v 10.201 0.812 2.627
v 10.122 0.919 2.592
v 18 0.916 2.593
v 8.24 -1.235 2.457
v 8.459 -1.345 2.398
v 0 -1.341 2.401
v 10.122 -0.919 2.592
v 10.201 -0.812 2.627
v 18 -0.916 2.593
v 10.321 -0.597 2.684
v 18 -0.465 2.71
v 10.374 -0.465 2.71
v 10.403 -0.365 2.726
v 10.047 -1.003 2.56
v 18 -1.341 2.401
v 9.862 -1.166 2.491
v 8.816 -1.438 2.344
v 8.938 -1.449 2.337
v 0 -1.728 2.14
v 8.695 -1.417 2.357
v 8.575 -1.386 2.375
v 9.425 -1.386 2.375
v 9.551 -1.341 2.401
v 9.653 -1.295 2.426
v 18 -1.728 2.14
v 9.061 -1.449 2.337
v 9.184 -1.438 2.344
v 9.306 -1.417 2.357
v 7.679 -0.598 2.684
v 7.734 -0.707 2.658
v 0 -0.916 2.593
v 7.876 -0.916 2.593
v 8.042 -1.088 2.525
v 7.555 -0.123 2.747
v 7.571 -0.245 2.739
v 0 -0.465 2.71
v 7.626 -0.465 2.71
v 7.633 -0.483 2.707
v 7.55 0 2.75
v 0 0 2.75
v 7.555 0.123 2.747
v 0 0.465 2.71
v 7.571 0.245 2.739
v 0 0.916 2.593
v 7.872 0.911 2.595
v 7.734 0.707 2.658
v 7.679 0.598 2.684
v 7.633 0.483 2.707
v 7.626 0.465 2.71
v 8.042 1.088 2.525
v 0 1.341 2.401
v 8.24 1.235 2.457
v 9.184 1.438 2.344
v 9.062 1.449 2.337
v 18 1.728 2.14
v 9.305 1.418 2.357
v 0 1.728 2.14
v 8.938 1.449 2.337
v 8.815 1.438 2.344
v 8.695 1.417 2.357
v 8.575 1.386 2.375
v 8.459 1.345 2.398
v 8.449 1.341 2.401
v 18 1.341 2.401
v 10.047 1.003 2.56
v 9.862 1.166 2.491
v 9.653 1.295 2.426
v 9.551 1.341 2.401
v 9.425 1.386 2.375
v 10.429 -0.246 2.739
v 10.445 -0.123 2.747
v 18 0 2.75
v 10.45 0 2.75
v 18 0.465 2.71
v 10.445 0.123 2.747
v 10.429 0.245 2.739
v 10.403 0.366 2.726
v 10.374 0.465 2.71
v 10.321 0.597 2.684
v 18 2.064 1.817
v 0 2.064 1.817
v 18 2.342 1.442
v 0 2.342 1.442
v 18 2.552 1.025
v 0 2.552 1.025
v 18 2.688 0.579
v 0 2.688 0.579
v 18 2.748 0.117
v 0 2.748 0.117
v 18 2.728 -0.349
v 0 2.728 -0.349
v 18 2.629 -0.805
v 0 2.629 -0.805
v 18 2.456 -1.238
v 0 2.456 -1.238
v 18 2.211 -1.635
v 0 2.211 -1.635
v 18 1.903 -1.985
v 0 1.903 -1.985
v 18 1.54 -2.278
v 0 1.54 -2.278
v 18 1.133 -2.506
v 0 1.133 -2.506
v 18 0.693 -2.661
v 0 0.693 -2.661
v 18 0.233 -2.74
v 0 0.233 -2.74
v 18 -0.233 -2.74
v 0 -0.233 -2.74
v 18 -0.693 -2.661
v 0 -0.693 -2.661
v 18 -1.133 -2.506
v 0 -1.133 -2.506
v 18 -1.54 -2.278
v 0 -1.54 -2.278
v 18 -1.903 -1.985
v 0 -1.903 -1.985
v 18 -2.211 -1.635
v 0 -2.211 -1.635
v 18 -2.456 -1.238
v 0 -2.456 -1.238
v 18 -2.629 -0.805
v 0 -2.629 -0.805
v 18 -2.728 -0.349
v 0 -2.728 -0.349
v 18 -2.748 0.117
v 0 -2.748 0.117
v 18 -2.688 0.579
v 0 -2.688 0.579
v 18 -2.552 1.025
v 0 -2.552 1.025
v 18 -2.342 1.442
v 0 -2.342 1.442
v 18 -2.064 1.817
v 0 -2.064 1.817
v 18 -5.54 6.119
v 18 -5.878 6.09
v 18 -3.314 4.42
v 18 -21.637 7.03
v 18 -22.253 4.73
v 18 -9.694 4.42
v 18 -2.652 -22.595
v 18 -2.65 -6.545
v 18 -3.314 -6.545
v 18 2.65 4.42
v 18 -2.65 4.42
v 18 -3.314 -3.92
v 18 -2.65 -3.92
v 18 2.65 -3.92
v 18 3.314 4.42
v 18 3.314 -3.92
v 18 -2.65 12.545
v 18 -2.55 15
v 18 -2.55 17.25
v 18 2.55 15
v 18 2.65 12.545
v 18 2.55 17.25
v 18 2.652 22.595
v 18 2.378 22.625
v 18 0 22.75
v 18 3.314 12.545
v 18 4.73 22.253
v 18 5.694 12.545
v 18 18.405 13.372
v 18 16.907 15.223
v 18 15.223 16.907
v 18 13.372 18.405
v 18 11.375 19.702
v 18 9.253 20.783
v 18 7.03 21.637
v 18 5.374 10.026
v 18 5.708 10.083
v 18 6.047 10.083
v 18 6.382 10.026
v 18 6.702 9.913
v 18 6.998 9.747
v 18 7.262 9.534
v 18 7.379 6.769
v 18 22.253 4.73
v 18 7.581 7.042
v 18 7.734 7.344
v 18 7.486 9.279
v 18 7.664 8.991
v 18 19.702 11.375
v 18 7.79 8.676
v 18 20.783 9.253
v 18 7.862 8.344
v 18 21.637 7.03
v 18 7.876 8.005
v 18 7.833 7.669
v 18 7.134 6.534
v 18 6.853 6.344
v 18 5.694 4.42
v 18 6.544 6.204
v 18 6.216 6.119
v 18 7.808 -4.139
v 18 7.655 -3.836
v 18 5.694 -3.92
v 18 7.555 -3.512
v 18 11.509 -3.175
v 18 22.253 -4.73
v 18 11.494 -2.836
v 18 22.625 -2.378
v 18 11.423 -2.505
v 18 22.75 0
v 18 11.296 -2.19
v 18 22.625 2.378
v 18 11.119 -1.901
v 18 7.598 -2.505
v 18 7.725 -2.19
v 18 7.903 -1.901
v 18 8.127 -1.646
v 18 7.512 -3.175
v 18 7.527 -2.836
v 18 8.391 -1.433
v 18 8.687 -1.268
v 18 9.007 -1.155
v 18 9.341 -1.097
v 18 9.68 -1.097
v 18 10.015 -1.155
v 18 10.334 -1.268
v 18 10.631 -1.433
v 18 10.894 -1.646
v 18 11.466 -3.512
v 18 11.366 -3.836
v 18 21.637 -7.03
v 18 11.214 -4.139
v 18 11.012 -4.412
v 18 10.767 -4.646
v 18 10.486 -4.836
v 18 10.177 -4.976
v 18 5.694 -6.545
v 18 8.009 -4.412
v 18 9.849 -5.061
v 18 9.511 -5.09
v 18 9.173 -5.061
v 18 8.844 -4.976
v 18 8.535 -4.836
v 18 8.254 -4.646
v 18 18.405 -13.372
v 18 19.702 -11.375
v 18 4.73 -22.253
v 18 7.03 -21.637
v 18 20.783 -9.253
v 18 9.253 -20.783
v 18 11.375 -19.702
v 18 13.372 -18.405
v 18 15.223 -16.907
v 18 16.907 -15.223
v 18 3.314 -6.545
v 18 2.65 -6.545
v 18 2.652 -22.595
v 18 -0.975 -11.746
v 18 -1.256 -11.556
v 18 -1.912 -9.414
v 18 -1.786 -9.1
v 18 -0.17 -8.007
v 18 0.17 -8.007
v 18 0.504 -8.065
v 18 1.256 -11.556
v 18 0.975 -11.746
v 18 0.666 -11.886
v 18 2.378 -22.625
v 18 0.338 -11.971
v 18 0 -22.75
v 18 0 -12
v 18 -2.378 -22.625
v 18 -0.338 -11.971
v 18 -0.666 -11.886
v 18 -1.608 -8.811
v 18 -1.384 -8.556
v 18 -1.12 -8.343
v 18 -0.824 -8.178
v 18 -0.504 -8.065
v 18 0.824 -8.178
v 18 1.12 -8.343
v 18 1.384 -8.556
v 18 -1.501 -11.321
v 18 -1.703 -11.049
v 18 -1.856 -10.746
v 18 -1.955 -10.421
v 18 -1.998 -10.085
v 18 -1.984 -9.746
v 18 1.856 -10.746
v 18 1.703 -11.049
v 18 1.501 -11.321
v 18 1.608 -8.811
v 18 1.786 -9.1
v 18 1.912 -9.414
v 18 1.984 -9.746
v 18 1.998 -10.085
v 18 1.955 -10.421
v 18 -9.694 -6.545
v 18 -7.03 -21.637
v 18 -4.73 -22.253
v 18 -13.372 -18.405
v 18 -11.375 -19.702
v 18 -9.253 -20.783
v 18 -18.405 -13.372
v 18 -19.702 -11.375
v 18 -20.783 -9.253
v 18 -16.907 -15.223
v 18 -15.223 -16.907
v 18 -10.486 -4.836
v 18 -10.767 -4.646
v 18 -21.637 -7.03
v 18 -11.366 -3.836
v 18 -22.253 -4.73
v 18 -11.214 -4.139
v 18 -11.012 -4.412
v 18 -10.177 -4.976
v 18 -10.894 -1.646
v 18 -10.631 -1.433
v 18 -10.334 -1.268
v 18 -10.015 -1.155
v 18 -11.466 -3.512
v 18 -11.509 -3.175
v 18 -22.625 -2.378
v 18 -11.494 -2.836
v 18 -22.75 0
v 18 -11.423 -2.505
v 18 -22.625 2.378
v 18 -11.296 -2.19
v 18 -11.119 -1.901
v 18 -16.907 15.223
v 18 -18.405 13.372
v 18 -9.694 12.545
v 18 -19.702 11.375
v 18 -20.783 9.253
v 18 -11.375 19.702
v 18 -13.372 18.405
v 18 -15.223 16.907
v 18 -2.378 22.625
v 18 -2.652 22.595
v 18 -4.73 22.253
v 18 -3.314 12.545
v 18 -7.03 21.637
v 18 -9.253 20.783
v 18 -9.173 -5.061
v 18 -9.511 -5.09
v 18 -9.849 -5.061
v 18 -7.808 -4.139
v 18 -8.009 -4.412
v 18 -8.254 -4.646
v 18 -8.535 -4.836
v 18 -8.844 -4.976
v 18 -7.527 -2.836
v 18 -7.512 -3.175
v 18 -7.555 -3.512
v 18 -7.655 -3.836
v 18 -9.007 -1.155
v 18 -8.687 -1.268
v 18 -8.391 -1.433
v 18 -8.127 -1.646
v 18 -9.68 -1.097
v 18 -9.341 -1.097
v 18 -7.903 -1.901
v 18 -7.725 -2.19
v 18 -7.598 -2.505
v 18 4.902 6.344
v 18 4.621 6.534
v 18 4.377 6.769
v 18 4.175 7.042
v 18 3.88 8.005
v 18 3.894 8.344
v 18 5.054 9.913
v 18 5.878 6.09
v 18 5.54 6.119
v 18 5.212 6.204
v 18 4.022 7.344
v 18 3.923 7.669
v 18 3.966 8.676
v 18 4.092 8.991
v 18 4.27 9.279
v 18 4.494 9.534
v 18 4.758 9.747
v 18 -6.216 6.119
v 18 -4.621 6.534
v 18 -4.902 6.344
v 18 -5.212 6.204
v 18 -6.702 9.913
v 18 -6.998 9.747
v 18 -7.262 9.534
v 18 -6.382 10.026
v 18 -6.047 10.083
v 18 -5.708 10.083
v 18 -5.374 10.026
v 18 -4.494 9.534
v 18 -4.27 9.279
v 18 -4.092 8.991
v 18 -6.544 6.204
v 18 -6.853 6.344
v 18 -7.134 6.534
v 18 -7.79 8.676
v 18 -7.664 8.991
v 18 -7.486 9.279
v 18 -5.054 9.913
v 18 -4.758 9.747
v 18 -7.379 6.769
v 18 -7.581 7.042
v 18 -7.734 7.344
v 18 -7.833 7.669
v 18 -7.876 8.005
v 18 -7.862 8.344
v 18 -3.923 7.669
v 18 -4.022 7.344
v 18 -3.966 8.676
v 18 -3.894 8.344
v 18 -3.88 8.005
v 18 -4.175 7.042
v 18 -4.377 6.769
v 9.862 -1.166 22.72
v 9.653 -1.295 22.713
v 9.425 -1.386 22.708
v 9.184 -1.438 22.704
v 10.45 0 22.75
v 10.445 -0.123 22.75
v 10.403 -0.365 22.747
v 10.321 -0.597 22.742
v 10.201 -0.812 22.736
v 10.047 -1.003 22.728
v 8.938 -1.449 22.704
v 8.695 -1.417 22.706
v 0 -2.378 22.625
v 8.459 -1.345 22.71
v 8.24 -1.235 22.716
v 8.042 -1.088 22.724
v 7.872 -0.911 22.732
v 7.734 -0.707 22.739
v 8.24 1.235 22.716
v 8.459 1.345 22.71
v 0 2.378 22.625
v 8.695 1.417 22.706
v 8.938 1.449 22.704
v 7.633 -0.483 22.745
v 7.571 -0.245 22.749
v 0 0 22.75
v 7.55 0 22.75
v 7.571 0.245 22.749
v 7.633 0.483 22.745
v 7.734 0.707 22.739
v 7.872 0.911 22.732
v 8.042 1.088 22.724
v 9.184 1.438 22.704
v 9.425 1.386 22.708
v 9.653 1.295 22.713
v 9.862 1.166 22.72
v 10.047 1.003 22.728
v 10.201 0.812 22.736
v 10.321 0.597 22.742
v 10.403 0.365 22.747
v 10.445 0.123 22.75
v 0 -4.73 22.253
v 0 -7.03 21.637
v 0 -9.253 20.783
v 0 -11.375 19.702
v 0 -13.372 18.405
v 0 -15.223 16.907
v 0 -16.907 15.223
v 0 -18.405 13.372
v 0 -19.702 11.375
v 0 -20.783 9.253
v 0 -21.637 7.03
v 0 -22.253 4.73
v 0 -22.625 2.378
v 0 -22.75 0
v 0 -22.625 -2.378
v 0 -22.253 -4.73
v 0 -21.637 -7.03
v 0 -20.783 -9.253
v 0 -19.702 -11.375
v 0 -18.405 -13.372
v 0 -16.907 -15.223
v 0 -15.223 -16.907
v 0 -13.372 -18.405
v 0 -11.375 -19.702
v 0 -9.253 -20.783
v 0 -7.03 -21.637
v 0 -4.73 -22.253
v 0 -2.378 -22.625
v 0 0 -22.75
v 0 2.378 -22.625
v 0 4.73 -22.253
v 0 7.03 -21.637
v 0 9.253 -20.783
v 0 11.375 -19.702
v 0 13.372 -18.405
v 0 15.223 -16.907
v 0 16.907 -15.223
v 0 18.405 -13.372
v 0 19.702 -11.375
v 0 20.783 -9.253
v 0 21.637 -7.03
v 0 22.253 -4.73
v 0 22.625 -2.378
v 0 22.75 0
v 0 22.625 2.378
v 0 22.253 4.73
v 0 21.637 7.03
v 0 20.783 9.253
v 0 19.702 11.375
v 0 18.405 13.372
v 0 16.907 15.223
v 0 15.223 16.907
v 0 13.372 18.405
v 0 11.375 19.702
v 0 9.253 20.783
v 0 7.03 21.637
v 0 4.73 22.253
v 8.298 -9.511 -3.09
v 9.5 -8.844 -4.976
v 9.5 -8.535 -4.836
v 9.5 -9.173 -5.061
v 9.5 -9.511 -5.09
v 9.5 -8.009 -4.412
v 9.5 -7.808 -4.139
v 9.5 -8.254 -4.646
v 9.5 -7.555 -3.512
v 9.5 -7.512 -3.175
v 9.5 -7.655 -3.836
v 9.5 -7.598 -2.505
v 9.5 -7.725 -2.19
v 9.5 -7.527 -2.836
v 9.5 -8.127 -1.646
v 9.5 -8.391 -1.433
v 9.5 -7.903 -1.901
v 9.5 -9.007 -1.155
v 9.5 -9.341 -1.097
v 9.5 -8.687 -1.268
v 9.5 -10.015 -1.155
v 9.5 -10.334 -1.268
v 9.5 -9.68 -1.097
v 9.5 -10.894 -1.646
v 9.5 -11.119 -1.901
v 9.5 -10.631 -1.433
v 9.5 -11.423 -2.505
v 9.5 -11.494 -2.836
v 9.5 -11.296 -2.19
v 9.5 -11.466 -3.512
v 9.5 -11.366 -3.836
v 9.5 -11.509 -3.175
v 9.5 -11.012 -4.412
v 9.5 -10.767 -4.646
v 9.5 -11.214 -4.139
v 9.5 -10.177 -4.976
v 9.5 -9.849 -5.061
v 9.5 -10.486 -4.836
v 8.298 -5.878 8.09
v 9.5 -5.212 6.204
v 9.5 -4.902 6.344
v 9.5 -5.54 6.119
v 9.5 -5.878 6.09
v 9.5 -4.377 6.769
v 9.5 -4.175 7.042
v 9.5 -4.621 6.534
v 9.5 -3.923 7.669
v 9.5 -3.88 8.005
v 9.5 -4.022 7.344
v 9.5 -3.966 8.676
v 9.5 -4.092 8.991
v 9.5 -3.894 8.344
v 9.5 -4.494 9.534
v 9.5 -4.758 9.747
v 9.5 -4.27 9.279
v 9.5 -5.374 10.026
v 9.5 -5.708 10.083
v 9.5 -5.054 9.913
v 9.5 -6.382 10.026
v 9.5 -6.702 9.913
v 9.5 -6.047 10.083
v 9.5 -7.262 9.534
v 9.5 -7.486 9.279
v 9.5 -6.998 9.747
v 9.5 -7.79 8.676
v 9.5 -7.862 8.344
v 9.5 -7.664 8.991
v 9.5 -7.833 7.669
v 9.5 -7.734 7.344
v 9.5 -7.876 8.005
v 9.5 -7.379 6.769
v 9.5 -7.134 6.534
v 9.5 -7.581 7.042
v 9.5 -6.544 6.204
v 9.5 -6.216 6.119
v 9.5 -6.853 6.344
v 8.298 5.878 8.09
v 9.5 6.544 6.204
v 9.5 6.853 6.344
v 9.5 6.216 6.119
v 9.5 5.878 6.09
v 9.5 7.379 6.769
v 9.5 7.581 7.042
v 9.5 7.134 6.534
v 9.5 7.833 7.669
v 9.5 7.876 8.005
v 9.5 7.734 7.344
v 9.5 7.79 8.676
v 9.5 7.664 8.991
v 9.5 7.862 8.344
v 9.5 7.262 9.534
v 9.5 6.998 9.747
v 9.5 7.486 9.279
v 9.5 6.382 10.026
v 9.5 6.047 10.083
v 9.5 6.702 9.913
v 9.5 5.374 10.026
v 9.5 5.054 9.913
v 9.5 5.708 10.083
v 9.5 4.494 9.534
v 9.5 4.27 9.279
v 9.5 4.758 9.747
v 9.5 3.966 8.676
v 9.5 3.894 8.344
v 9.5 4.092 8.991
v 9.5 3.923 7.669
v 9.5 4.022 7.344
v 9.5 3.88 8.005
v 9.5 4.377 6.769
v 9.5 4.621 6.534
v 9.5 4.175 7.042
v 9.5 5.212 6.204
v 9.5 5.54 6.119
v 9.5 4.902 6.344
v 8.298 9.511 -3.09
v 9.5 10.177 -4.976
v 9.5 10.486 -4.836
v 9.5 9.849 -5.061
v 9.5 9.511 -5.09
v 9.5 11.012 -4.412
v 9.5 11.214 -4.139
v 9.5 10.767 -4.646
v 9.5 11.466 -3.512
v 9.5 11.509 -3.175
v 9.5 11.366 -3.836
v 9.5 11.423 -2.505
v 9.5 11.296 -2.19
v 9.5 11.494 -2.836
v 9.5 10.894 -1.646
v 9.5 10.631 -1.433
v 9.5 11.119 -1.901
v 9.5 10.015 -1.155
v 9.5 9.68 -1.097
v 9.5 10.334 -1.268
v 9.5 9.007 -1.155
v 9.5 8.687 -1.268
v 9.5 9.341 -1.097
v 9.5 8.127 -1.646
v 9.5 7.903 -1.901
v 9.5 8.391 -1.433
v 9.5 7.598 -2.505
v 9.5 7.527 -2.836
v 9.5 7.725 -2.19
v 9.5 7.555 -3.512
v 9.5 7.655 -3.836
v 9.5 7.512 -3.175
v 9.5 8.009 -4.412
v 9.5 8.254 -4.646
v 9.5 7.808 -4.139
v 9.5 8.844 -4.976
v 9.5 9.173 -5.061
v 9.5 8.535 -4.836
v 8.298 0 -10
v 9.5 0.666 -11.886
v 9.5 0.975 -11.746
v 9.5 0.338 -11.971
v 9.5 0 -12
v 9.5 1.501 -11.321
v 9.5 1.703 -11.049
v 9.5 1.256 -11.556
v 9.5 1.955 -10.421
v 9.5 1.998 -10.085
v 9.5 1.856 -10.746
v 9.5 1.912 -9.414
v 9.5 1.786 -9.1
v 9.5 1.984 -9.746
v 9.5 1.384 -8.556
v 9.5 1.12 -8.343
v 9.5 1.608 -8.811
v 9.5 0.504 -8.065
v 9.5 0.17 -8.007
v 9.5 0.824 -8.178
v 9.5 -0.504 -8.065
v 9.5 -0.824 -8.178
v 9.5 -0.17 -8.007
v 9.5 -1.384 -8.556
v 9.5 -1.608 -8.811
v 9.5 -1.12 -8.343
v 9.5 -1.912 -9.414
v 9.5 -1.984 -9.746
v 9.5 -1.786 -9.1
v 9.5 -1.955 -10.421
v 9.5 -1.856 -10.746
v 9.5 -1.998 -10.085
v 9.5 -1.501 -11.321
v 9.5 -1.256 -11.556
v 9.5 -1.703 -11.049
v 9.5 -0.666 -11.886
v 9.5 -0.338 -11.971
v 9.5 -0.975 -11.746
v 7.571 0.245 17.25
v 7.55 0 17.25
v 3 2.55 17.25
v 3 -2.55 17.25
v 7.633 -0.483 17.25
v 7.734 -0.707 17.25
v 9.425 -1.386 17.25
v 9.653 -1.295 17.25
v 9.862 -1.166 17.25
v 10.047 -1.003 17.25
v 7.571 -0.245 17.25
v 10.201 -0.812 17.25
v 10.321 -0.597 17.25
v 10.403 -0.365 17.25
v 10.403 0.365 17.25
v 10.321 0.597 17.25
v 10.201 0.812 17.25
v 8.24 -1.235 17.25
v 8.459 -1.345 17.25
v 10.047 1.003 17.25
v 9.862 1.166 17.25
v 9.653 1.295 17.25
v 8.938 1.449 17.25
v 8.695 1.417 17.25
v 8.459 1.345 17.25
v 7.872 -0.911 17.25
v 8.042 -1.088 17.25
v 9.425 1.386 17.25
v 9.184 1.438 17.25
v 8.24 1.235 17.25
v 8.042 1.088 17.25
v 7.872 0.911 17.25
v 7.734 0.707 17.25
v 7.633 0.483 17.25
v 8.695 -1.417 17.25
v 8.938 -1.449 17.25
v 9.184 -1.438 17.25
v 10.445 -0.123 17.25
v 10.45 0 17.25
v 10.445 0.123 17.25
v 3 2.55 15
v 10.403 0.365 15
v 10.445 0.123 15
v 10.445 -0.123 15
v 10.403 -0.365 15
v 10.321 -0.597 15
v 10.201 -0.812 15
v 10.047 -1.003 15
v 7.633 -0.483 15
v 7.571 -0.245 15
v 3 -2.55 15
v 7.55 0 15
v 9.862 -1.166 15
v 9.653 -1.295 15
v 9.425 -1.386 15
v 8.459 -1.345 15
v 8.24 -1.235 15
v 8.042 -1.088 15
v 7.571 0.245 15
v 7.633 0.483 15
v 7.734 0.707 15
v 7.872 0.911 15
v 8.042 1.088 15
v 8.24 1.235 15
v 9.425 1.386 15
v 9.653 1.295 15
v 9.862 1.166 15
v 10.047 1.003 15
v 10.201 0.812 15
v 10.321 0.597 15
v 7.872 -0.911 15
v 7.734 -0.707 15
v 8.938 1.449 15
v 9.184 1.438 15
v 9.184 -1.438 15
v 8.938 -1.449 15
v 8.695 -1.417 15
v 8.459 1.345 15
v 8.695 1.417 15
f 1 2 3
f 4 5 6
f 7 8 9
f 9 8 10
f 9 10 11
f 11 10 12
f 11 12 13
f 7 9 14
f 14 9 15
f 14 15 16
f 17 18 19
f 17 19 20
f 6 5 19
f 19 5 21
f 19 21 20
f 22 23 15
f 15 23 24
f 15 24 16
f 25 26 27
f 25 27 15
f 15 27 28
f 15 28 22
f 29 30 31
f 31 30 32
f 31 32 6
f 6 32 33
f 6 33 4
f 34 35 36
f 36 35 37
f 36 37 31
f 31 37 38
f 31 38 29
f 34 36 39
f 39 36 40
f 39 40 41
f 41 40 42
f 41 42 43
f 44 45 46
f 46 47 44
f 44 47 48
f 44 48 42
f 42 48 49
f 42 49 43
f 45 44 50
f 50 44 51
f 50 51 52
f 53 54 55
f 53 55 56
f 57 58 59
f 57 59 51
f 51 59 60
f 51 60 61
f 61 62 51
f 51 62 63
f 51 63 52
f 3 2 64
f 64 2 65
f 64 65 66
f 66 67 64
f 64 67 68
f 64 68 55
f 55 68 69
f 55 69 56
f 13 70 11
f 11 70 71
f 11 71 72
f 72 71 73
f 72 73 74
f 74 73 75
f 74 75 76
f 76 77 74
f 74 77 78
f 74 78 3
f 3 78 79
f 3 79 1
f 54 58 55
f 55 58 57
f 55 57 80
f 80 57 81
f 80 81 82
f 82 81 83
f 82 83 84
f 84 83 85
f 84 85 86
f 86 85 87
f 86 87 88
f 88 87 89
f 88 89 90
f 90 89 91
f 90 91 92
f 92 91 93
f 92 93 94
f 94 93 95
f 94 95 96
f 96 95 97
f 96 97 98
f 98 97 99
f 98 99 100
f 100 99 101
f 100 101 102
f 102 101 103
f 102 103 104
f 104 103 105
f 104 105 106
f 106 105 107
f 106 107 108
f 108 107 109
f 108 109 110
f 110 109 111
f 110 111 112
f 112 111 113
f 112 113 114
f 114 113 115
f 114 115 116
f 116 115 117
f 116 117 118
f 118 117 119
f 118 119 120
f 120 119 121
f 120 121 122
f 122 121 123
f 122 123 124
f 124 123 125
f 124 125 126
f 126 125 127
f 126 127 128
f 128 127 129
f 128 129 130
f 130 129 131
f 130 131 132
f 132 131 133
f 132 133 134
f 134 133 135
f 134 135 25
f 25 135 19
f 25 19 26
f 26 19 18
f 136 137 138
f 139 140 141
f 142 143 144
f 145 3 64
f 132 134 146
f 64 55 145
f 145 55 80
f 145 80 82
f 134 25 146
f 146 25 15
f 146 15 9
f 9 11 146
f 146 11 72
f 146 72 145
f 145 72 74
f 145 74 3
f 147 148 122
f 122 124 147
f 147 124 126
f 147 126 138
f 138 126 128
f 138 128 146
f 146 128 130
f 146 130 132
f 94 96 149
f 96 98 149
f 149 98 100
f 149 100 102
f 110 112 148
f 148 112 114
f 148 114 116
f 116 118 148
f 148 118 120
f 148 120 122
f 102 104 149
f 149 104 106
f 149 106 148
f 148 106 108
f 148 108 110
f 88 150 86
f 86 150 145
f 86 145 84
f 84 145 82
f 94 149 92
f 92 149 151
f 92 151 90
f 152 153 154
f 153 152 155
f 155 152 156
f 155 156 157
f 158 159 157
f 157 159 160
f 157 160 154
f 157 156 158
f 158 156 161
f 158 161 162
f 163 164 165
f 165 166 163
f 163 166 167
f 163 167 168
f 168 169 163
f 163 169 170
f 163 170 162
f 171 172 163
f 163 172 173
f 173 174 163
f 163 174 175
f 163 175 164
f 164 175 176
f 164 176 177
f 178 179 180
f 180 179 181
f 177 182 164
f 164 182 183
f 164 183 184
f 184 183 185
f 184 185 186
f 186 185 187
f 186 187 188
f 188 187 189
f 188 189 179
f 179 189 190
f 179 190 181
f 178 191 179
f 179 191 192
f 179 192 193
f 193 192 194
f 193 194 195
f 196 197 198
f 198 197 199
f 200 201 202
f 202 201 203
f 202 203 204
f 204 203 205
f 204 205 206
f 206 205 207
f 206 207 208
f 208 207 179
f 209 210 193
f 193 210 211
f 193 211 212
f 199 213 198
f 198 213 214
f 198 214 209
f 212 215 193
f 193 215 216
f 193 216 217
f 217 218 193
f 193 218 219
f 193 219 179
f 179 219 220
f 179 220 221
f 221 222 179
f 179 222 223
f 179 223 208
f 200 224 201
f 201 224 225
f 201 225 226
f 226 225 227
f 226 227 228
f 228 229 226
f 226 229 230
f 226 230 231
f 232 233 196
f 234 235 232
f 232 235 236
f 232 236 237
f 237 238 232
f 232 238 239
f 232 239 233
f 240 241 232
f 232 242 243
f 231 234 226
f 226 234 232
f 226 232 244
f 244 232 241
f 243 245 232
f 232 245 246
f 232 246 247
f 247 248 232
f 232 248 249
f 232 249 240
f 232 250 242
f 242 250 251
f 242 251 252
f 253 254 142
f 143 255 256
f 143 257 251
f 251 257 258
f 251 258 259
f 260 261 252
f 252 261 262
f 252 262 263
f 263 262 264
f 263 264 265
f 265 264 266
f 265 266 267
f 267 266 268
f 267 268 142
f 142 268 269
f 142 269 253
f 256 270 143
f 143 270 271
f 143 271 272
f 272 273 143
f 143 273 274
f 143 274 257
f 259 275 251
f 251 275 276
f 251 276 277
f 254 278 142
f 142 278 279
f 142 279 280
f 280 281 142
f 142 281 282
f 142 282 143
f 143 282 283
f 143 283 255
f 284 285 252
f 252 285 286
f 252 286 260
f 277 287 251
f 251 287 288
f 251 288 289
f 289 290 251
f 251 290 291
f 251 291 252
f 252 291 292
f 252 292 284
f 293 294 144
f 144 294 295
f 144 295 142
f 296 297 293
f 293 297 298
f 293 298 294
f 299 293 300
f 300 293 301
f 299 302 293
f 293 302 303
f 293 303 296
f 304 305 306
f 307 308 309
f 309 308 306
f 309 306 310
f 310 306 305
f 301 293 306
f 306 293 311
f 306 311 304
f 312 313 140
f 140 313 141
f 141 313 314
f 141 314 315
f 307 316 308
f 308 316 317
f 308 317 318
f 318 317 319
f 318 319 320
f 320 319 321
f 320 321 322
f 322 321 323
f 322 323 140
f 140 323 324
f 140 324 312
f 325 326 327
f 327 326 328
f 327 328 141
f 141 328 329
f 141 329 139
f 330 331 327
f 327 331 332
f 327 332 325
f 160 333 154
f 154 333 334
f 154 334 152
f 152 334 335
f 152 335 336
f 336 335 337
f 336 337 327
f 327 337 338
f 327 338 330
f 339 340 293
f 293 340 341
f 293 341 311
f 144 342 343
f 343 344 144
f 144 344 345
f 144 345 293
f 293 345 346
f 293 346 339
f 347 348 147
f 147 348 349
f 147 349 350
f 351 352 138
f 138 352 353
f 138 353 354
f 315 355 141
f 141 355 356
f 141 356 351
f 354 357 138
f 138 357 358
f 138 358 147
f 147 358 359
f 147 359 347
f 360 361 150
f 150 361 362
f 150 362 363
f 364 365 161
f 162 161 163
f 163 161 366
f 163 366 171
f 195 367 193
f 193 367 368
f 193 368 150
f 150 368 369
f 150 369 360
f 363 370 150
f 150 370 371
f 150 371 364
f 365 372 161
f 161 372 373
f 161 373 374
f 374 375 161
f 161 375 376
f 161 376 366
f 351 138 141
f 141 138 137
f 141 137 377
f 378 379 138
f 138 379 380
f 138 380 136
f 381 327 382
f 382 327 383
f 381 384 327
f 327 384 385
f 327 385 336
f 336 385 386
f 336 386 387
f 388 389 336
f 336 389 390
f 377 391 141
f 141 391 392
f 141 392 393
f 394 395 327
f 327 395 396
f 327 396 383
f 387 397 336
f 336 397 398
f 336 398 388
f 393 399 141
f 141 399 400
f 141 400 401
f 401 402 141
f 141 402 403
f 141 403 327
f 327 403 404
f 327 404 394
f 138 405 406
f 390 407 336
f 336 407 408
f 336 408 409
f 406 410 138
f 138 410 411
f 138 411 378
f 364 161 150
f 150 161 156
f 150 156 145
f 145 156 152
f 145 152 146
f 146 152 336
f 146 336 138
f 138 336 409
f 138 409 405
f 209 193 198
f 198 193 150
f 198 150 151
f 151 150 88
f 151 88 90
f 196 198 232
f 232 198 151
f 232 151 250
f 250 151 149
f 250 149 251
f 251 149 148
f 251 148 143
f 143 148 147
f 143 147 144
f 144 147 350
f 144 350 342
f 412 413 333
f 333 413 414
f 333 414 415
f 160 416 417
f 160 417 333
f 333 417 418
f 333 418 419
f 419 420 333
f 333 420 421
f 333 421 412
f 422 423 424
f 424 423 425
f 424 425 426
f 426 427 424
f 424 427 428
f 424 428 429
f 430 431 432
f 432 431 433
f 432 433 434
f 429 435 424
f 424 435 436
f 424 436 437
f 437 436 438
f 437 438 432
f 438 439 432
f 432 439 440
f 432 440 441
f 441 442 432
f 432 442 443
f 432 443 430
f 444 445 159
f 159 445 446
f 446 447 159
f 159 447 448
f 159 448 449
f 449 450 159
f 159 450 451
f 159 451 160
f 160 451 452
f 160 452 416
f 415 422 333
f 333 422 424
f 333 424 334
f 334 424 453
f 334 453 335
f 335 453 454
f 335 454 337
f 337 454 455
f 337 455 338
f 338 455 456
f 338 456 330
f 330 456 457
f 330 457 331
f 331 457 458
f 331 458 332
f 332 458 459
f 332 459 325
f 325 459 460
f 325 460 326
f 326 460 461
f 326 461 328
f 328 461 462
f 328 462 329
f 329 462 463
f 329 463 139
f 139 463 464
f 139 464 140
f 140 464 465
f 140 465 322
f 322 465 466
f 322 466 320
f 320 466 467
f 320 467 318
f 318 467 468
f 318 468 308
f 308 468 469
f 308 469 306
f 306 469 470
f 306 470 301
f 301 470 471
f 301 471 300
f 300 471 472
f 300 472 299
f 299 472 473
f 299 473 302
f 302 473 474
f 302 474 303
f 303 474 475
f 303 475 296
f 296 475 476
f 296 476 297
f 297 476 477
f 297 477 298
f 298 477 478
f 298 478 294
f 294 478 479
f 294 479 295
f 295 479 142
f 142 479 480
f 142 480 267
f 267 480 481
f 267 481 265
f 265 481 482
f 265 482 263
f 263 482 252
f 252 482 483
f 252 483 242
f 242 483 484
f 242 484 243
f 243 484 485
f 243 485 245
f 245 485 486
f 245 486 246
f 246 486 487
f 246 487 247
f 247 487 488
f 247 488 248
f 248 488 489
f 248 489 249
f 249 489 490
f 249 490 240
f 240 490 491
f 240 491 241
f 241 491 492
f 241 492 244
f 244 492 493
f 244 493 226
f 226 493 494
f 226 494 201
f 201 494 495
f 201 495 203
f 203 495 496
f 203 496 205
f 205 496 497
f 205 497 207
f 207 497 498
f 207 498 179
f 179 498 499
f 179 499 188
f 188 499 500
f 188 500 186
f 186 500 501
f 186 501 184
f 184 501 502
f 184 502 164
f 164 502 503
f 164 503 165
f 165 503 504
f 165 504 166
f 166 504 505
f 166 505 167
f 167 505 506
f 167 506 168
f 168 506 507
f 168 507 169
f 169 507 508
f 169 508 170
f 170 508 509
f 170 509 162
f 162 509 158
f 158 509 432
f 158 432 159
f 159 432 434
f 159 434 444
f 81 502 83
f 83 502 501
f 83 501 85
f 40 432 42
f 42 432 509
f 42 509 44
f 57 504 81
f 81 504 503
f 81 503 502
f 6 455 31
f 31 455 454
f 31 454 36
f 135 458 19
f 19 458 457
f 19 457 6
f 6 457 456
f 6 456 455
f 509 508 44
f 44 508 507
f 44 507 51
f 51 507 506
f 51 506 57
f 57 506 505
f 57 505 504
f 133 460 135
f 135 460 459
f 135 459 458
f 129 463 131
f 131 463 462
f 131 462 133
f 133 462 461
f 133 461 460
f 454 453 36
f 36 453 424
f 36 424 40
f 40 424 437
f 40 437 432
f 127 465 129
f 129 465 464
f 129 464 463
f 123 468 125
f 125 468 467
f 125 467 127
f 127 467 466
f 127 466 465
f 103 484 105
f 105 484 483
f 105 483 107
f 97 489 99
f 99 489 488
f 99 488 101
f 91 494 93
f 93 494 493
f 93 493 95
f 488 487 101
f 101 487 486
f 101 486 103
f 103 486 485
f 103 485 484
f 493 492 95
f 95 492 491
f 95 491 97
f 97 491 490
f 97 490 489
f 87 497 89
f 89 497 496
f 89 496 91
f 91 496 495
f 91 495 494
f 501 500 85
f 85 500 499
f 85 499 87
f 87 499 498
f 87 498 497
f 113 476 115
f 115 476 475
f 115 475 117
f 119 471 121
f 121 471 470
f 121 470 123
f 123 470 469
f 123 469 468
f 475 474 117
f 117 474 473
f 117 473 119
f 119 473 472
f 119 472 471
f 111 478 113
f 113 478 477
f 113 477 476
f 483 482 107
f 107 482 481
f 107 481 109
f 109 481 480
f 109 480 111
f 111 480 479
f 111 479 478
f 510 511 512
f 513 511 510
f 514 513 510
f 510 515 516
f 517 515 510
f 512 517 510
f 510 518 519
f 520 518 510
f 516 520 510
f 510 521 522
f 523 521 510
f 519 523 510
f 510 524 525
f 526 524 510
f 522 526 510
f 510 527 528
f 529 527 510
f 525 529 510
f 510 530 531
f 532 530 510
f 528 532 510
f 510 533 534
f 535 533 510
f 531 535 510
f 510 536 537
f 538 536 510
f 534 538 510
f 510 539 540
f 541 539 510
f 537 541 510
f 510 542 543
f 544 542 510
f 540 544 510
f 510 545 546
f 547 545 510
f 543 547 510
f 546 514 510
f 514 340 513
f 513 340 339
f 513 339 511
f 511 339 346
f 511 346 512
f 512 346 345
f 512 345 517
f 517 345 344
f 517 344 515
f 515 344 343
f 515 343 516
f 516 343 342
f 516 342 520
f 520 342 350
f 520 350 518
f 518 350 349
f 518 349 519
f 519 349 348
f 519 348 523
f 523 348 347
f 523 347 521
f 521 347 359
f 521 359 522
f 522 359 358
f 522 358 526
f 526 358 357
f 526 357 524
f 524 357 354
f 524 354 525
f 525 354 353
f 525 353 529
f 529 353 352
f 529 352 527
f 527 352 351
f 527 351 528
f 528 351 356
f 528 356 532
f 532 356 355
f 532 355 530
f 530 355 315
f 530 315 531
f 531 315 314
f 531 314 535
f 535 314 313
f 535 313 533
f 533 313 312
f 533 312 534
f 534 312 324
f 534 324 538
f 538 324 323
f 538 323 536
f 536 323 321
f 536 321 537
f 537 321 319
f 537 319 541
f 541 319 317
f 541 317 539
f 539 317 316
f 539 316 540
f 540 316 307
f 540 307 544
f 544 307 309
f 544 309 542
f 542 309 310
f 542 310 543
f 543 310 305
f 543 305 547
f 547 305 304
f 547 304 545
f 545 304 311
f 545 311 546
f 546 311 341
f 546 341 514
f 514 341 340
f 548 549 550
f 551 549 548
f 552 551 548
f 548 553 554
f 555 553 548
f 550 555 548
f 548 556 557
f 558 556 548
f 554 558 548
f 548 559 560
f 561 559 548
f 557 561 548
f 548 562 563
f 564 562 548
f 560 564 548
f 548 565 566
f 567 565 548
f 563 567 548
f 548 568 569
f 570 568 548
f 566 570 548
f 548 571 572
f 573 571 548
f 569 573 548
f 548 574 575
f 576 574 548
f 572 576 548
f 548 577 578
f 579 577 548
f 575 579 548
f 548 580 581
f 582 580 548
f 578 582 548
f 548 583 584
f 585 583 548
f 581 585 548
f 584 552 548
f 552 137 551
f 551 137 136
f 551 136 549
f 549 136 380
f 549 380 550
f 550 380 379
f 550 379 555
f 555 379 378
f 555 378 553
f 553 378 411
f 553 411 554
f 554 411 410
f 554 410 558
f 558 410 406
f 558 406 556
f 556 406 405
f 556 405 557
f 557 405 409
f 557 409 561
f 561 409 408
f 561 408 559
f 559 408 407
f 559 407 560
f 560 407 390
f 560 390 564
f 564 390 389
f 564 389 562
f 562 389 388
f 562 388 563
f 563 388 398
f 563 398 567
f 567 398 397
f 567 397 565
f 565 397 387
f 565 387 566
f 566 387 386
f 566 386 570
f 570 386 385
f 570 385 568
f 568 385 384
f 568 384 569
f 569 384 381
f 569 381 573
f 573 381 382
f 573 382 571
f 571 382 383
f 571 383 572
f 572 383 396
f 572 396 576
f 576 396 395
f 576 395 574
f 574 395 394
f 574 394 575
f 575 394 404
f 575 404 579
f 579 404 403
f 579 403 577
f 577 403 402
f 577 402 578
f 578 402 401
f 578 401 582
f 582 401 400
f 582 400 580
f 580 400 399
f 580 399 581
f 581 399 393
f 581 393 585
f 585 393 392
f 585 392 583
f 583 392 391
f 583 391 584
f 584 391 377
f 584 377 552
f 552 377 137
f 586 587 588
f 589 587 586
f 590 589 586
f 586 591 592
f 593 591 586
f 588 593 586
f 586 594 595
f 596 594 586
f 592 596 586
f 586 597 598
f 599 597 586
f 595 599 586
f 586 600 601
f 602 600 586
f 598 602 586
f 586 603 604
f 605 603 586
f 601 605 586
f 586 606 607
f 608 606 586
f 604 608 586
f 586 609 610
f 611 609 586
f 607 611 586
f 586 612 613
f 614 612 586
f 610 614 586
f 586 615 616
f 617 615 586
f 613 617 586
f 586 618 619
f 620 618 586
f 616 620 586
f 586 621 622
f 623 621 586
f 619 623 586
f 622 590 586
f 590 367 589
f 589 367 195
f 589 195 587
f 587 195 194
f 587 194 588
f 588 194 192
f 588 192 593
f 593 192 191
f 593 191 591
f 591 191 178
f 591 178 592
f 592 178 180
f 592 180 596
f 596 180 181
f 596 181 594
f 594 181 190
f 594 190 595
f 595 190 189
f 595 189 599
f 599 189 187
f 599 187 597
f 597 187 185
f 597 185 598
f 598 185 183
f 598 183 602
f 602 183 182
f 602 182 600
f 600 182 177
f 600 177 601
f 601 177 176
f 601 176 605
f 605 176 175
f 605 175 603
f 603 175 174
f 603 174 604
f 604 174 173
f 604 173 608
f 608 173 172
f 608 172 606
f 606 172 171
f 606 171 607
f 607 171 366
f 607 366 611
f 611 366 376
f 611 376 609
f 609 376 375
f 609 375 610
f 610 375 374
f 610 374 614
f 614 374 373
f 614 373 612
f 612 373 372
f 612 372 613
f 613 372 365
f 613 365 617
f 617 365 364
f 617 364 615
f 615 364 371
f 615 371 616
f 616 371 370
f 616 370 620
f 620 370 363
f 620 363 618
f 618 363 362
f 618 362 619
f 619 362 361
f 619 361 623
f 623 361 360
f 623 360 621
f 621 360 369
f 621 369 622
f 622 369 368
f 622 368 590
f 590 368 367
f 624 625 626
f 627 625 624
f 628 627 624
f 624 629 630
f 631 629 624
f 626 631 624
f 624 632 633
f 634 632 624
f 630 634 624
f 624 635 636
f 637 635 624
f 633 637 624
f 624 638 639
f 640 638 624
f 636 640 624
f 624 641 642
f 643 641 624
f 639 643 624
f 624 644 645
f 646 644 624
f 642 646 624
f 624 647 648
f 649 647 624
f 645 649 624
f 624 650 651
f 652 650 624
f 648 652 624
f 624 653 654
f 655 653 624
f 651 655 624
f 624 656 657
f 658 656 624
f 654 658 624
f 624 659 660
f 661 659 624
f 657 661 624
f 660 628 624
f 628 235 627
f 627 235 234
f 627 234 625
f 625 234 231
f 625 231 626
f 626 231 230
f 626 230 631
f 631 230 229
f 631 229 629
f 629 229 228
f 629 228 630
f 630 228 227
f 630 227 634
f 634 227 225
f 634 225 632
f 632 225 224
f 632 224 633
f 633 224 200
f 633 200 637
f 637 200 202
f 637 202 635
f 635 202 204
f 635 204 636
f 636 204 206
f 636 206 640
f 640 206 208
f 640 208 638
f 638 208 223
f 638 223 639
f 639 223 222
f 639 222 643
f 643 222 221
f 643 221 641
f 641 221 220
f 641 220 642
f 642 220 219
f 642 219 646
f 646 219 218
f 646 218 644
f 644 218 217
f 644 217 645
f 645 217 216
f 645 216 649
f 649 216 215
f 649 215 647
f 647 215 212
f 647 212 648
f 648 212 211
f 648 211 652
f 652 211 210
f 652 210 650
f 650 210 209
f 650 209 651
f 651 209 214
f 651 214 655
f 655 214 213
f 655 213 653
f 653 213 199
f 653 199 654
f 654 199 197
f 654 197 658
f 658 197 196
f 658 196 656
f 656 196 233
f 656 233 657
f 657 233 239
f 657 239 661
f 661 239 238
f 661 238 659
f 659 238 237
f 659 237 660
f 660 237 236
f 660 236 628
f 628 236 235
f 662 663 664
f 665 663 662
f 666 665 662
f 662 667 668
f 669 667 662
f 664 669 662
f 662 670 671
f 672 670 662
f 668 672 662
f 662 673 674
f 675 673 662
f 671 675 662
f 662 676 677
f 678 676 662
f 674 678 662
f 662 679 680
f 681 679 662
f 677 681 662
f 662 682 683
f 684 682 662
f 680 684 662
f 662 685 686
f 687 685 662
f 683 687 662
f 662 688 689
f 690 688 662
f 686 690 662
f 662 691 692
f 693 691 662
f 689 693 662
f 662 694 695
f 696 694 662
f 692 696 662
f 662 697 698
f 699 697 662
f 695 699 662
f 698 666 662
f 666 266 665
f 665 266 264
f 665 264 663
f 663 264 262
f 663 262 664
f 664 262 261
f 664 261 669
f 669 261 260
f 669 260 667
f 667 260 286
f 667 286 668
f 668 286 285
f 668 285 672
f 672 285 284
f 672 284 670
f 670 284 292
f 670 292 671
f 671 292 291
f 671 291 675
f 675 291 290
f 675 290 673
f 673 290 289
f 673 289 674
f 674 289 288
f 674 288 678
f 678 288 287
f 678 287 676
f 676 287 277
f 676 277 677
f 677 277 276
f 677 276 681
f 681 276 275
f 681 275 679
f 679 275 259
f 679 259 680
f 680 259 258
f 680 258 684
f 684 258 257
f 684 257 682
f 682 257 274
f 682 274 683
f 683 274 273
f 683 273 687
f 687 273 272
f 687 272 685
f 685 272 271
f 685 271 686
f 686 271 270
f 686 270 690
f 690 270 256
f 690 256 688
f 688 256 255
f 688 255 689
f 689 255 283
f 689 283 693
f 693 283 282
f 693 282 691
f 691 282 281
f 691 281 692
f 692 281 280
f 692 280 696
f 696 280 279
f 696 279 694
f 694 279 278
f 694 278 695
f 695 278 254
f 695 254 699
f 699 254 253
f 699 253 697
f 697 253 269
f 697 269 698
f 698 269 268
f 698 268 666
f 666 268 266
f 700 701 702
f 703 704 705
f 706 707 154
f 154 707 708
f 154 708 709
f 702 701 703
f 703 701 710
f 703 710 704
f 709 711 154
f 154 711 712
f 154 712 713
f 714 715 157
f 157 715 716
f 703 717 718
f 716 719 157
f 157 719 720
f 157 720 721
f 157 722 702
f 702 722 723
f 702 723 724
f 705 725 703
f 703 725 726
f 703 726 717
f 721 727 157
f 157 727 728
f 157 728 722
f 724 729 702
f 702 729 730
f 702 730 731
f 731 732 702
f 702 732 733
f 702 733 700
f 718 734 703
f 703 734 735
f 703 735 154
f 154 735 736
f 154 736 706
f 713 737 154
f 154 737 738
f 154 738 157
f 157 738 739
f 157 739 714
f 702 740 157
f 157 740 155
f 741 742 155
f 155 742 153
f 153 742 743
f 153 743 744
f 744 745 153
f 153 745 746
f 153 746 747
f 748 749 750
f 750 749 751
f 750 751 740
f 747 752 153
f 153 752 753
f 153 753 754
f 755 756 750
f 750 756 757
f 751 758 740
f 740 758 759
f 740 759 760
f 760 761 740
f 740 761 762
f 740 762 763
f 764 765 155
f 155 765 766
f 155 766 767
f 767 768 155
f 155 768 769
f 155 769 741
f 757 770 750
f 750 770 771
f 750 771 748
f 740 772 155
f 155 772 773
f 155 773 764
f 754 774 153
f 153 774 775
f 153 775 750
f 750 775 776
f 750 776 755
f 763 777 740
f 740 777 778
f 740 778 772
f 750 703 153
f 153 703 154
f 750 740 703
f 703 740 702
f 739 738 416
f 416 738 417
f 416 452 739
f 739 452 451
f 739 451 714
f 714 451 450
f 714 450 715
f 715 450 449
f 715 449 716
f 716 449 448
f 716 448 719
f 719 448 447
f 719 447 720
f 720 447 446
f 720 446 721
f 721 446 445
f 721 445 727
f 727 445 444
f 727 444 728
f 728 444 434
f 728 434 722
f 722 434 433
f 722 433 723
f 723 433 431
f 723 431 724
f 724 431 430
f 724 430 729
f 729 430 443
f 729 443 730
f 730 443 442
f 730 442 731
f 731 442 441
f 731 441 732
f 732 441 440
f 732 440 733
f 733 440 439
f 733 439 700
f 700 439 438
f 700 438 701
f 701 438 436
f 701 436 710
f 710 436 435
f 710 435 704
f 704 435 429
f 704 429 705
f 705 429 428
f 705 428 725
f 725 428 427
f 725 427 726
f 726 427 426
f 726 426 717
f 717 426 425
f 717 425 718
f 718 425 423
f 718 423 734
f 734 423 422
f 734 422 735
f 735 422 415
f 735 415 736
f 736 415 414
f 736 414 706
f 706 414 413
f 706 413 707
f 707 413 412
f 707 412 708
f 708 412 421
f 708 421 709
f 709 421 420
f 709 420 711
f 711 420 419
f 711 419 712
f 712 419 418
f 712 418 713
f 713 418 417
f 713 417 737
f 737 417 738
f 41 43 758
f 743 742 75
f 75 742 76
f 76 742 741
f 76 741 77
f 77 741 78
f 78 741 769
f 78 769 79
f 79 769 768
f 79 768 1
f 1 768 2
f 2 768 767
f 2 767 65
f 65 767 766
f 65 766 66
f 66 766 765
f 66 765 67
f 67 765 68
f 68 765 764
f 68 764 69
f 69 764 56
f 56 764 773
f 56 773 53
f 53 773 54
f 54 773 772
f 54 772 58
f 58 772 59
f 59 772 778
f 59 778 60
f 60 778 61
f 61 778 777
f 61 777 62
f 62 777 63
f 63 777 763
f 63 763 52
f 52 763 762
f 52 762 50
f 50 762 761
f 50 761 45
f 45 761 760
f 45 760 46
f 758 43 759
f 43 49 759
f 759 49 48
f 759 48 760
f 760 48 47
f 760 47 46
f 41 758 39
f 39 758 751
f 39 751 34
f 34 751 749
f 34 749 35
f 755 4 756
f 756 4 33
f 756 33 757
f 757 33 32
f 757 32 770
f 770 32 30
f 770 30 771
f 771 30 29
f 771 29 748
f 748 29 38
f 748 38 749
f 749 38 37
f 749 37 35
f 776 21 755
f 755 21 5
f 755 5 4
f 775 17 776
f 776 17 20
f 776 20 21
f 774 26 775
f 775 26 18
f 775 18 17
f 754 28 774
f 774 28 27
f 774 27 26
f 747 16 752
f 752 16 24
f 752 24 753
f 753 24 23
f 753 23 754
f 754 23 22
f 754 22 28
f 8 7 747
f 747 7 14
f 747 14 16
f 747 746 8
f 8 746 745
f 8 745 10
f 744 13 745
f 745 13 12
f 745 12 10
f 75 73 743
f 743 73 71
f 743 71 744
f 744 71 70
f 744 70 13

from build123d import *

# Parameters (mm, degrees)
ESQUISSE1_W             = 18
ESQUISSE1_H             = 20
ESQUISSE4_W             = 2.25
ESQUISSE4_H             = 5.1
ENL_V_MAT_EXTRU_1_DEPTH = 15
ESQUISSE6_W             = 1.45
ESQUISSE6_H             = 22.75


# Read off the part's stored shape, not the designer's step: Diamètre du perçage Ø4.0 (4)1
with BuildPart() as part:
    # Esquisse1 → Révolution1 (revolve)
    with BuildSketch(Plane.XY, mode=Mode.PRIVATE) as r_volution1_sk:
        with Locations((9, 12.75)):
            Rectangle(ESQUISSE1_W, ESQUISSE1_H)
    revolve(r_volution1_sk.sketch.rotate(Axis((0, 0, 0), (1, 0, 0)), 90), axis=Axis((0, 0, 0), (1, 0, 0)))

    # Diamètre du perçage Ø4.0 (4)1 outline → Diamètre du perçage Ø4.0 (4)1 (revolve, cut)
    with BuildSketch(Plane(origin=(0, -9.510565163, -3.090169944), x_dir=(0, 1, 0), z_dir=(0, 0, -1))):
        Polygon((0, 18), (0, 8.298278762), (2, 9.5), (2, 18), align=None)
    revolve(axis=Axis((0, -9.510565163, -3.090169944), (1, 0, 0)), mode=Mode.SUBTRACT)

    # Diam_tre du per_age _4.0 _4_1 2 outline → Diam_tre du per_age _4.0 _4_1 2 (revolve, cut)
    with BuildSketch(Plane(origin=(0, -5.877852523, 8.090169944), x_dir=(0, 1, 0), z_dir=(0, 0, -1))):
        Polygon((0, 18), (0, 8.298278762), (2, 9.5), (2, 18), align=None)
    revolve(axis=Axis((0, -5.877852523, 8.090169944), (1, 0, 0)), mode=Mode.SUBTRACT)

    # Diam_tre du per_age _4.0 _4_1 3 outline → Diam_tre du per_age _4.0 _4_1 3 (revolve, cut)
    with BuildSketch(Plane(origin=(0, 5.877852523, 8.090169944), x_dir=(0, 1, 0), z_dir=(0, 0, -1))):
        Polygon((0, 18), (0, 8.298278762), (2, 9.5), (2, 18), align=None)
    revolve(axis=Axis((0, 5.877852523, 8.090169944), (1, 0, 0)), mode=Mode.SUBTRACT)

    # Diam_tre du per_age _4.0 _4_1 4 outline → Diam_tre du per_age _4.0 _4_1 4 (revolve, cut)
    with BuildSketch(Plane(origin=(0, 9.510565163, -3.090169944), x_dir=(0, 1, 0), z_dir=(0, 0, -1))):
        Polygon((0, 18), (0, 8.298278762), (2, 9.5), (2, 18), align=None)
    revolve(axis=Axis((0, 9.510565163, -3.090169944), (1, 0, 0)), mode=Mode.SUBTRACT)

    # Diam_tre du per_age _4.0 _4_1 5 outline → Diam_tre du per_age _4.0 _4_1 5 (revolve, cut)
    with BuildSketch(Plane.YX.offset(10)):
        Polygon((0, 18), (0, 8.298278762), (2, 9.5), (2, 18), align=None)
    revolve(axis=Axis((0, 0, -10), (1, 0, 0)), mode=Mode.SUBTRACT)

    # Esquisse4 → Enlèv. mat.-Extru.1 (cut)
    with BuildSketch(Plane(origin=(18, 0, 0), x_dir=(0, 0, -1), z_dir=(1, 0, 0))):
        with Locations((-16.125, 0)):
            Rectangle(ESQUISSE4_W, ESQUISSE4_H)
    extrude(amount=-ENL_V_MAT_EXTRU_1_DEPTH, mode=Mode.SUBTRACT)

    # Esquisse6 → Dégagement M2.51 (revolve, cut)
    with BuildSketch(Plane.YZ.offset(9)):
        with Locations((0.725, 11.375)):
            Rectangle(ESQUISSE6_W, ESQUISSE6_H)
    revolve(axis=Axis((9, 0, -6.35), (0, 0, 1)), mode=Mode.SUBTRACT)


solid = part.part
